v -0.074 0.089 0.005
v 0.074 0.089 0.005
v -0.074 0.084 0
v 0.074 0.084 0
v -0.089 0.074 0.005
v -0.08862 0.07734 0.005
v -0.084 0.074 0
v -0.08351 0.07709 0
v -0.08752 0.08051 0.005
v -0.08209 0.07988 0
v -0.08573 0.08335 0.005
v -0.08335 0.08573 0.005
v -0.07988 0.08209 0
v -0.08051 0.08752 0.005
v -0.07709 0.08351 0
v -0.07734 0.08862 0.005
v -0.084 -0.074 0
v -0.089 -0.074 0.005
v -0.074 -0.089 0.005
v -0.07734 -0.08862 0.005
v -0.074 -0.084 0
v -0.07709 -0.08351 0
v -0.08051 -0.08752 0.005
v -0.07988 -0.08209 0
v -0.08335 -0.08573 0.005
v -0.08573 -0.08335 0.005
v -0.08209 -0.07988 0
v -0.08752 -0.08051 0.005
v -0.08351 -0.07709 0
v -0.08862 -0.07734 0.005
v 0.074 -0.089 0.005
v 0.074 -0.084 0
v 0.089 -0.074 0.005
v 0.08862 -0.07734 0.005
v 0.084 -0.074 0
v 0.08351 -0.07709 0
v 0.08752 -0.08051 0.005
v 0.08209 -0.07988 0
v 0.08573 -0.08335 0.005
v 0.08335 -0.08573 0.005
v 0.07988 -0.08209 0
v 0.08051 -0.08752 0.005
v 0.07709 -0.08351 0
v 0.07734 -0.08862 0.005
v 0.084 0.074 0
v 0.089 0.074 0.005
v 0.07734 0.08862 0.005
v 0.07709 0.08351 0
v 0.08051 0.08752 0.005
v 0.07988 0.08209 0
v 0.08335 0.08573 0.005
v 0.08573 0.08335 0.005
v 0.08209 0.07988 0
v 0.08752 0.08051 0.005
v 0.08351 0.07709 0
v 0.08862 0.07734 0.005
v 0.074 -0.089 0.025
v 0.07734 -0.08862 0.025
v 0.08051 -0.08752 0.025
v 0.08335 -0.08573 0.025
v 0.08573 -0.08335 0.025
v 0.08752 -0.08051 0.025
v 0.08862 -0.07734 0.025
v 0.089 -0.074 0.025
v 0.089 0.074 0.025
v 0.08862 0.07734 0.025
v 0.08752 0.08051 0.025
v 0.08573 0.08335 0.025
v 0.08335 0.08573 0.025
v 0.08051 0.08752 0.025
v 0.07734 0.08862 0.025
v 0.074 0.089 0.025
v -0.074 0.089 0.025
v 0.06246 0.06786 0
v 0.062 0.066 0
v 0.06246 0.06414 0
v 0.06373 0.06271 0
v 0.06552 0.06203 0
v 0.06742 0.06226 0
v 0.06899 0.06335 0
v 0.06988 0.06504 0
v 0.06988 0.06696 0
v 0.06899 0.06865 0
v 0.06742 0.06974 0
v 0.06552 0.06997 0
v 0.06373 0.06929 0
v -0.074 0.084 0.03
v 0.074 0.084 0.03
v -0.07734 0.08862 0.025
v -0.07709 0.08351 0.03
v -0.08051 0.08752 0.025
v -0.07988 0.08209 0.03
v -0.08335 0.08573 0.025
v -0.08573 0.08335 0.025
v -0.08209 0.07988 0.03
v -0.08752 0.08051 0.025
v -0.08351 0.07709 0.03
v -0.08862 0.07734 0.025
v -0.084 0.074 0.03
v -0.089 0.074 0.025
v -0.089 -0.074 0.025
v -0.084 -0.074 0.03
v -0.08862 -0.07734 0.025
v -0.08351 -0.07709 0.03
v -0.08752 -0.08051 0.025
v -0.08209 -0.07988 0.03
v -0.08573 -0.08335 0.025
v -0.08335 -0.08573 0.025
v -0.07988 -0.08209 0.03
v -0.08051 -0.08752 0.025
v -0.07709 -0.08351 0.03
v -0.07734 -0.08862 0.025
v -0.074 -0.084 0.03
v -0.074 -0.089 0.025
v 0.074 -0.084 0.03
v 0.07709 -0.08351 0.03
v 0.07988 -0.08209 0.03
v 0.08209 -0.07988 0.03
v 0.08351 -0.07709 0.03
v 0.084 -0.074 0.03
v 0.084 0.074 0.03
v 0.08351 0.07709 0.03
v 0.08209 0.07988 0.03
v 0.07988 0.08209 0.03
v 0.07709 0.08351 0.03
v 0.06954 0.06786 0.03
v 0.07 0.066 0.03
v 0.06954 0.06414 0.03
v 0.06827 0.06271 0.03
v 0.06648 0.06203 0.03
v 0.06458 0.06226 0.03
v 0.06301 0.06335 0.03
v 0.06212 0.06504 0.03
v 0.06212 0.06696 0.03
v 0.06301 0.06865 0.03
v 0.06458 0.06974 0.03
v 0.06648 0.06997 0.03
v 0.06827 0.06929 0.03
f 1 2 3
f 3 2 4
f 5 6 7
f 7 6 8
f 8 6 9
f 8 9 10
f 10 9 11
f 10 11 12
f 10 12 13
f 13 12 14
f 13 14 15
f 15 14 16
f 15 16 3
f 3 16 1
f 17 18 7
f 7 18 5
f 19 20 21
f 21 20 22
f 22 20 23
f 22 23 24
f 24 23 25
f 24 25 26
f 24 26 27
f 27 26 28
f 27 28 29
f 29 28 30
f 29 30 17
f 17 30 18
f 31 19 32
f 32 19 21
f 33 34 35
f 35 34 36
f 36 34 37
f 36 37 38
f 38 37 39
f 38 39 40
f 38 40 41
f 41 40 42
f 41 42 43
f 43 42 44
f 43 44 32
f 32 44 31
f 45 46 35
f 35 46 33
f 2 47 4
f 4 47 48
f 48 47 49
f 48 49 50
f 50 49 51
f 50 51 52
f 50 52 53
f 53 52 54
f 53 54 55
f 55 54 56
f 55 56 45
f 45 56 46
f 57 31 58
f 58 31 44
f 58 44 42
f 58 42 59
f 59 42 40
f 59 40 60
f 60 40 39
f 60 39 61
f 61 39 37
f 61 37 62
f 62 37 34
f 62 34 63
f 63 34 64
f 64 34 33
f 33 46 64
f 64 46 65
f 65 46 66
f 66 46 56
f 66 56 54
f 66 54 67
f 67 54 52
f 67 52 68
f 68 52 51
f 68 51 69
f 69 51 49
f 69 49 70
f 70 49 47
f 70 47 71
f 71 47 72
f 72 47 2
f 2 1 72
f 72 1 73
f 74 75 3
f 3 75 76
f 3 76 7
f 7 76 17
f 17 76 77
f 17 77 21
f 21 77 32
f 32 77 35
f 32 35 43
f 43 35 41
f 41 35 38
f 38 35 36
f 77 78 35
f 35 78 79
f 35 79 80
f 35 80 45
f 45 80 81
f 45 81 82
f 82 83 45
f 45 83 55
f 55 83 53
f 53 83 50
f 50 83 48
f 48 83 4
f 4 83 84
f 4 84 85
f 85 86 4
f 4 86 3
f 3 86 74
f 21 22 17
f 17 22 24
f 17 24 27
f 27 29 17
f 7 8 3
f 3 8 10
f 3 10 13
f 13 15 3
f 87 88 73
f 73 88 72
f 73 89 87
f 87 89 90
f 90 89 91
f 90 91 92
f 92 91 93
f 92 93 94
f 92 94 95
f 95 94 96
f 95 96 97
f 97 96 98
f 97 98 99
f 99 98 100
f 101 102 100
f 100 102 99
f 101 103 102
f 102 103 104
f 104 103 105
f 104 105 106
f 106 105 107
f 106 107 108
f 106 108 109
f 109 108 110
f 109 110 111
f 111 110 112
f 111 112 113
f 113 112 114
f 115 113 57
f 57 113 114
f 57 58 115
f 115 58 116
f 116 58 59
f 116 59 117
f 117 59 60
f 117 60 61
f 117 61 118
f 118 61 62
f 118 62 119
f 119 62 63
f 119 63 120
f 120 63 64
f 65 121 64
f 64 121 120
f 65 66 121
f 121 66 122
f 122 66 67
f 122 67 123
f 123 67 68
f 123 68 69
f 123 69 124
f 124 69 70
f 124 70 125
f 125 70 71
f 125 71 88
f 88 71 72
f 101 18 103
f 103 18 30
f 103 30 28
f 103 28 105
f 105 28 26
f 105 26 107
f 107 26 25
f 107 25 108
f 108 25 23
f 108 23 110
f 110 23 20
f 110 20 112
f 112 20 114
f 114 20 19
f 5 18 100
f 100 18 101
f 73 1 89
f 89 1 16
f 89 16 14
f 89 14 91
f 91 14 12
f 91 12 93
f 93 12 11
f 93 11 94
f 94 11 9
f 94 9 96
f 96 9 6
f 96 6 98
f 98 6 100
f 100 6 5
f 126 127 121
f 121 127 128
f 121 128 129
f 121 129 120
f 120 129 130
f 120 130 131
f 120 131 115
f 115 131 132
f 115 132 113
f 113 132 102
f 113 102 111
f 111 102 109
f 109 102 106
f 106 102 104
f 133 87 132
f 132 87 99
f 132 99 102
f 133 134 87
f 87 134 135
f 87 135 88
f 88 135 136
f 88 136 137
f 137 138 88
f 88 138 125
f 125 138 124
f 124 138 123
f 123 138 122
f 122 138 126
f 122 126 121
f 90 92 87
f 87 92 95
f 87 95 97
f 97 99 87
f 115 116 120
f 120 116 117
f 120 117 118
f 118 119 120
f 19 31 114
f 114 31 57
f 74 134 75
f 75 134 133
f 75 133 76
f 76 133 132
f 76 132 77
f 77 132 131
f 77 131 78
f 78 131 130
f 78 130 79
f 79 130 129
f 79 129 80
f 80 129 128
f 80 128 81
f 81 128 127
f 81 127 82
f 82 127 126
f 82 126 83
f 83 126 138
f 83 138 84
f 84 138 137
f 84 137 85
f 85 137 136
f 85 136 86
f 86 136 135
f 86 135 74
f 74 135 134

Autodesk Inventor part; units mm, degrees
ref_plane "YZ Plane" through (0, 0, 0) normal (1, 0, 0) x (0, 1, 0)
ref_plane "XZ Plane" through (0, 0, 0) normal (0, 1, 0) x (-1, 0, 0)
ref_plane "XY Plane" through (0, 0, 0) normal (0, 0, 1) x (1, 0, 0)
sketch "Schizzo1" plane through (0, 0, 0) normal (0, 0, 1) x (1, 0, 0)
  line L0 (0.089, 0.089) -> (-0.089, 0.089)
  line L1 (-0.089, 0.089) -> (-0.089, -0.089)
  line L2 (-0.089, -0.089) -> (0.089, -0.089)
  line L3 (0.089, -0.089) -> (0.089, 0.089)
  line L4 (0.089, 0.089) -> (-0.089, -0.089) construction
  line L5 (-0.089, 0.089) -> (0.089, -0.089) construction
  point P0 (0, 0)
  dimension "d0" = 0.178
  dimension "d1" = 0.178
extrude "Estrusione1" add sketch "Schizzo1" along normal blind 0.03
sketch "Schizzo2" plane through (0, 0, 0.03) normal (0, 0, 1) x (1, 0, 0)
  line L0 (-0.089, 0.089) -> (-0.089, -0.089) construction
  line L1 (-0.089, -0.089) -> (0.089, -0.089) construction
  line L2 (0.089, -0.089) -> (0.089, 0.089) construction
  line L3 (0.089, 0.089) -> (-0.089, 0.089) construction
  circle A0 centre (0.066, 0.066) radius 0.004
  point P0 (0, 0)
  dimension "d4" = 0.023
  dimension "d5" = 0.023
  dimension "d6" = 0.008
extrude "Estrusione2" cut sketch "Schizzo2" against normal through all
fillet "Raccordo1" radius 0.015 4 edges at (0.089, 0.089, 0.015) (-0.089, 0.089, 0.015) (0.089, -0.089, 0.015) (-0.089, -0.089, 0.015)
chamfer "Smusso1" distance 0.005 angle 45 16 edges at (0, 0.089, 0.03) (-0.0846, 0.0846, 0.03) (-0.089, 0, 0.03) (-0.0846, -0.0846, 0.03) (0, -0.089, 0.03) (0.0846, -0.0846, 0.03) (0.089, 0, 0.03) (0.0846, 0.0846, 0.03) (0, 0.089, 0) (-0.0846, 0.0846, 0) (-0.089, 0, 0) (-0.0846, -0.0846, 0) (0, -0.089, 0) (0.0846, -0.0846, 0) (0.089, 0, 0) (0.0846, 0.0846, 0)
properties part number "plate"
